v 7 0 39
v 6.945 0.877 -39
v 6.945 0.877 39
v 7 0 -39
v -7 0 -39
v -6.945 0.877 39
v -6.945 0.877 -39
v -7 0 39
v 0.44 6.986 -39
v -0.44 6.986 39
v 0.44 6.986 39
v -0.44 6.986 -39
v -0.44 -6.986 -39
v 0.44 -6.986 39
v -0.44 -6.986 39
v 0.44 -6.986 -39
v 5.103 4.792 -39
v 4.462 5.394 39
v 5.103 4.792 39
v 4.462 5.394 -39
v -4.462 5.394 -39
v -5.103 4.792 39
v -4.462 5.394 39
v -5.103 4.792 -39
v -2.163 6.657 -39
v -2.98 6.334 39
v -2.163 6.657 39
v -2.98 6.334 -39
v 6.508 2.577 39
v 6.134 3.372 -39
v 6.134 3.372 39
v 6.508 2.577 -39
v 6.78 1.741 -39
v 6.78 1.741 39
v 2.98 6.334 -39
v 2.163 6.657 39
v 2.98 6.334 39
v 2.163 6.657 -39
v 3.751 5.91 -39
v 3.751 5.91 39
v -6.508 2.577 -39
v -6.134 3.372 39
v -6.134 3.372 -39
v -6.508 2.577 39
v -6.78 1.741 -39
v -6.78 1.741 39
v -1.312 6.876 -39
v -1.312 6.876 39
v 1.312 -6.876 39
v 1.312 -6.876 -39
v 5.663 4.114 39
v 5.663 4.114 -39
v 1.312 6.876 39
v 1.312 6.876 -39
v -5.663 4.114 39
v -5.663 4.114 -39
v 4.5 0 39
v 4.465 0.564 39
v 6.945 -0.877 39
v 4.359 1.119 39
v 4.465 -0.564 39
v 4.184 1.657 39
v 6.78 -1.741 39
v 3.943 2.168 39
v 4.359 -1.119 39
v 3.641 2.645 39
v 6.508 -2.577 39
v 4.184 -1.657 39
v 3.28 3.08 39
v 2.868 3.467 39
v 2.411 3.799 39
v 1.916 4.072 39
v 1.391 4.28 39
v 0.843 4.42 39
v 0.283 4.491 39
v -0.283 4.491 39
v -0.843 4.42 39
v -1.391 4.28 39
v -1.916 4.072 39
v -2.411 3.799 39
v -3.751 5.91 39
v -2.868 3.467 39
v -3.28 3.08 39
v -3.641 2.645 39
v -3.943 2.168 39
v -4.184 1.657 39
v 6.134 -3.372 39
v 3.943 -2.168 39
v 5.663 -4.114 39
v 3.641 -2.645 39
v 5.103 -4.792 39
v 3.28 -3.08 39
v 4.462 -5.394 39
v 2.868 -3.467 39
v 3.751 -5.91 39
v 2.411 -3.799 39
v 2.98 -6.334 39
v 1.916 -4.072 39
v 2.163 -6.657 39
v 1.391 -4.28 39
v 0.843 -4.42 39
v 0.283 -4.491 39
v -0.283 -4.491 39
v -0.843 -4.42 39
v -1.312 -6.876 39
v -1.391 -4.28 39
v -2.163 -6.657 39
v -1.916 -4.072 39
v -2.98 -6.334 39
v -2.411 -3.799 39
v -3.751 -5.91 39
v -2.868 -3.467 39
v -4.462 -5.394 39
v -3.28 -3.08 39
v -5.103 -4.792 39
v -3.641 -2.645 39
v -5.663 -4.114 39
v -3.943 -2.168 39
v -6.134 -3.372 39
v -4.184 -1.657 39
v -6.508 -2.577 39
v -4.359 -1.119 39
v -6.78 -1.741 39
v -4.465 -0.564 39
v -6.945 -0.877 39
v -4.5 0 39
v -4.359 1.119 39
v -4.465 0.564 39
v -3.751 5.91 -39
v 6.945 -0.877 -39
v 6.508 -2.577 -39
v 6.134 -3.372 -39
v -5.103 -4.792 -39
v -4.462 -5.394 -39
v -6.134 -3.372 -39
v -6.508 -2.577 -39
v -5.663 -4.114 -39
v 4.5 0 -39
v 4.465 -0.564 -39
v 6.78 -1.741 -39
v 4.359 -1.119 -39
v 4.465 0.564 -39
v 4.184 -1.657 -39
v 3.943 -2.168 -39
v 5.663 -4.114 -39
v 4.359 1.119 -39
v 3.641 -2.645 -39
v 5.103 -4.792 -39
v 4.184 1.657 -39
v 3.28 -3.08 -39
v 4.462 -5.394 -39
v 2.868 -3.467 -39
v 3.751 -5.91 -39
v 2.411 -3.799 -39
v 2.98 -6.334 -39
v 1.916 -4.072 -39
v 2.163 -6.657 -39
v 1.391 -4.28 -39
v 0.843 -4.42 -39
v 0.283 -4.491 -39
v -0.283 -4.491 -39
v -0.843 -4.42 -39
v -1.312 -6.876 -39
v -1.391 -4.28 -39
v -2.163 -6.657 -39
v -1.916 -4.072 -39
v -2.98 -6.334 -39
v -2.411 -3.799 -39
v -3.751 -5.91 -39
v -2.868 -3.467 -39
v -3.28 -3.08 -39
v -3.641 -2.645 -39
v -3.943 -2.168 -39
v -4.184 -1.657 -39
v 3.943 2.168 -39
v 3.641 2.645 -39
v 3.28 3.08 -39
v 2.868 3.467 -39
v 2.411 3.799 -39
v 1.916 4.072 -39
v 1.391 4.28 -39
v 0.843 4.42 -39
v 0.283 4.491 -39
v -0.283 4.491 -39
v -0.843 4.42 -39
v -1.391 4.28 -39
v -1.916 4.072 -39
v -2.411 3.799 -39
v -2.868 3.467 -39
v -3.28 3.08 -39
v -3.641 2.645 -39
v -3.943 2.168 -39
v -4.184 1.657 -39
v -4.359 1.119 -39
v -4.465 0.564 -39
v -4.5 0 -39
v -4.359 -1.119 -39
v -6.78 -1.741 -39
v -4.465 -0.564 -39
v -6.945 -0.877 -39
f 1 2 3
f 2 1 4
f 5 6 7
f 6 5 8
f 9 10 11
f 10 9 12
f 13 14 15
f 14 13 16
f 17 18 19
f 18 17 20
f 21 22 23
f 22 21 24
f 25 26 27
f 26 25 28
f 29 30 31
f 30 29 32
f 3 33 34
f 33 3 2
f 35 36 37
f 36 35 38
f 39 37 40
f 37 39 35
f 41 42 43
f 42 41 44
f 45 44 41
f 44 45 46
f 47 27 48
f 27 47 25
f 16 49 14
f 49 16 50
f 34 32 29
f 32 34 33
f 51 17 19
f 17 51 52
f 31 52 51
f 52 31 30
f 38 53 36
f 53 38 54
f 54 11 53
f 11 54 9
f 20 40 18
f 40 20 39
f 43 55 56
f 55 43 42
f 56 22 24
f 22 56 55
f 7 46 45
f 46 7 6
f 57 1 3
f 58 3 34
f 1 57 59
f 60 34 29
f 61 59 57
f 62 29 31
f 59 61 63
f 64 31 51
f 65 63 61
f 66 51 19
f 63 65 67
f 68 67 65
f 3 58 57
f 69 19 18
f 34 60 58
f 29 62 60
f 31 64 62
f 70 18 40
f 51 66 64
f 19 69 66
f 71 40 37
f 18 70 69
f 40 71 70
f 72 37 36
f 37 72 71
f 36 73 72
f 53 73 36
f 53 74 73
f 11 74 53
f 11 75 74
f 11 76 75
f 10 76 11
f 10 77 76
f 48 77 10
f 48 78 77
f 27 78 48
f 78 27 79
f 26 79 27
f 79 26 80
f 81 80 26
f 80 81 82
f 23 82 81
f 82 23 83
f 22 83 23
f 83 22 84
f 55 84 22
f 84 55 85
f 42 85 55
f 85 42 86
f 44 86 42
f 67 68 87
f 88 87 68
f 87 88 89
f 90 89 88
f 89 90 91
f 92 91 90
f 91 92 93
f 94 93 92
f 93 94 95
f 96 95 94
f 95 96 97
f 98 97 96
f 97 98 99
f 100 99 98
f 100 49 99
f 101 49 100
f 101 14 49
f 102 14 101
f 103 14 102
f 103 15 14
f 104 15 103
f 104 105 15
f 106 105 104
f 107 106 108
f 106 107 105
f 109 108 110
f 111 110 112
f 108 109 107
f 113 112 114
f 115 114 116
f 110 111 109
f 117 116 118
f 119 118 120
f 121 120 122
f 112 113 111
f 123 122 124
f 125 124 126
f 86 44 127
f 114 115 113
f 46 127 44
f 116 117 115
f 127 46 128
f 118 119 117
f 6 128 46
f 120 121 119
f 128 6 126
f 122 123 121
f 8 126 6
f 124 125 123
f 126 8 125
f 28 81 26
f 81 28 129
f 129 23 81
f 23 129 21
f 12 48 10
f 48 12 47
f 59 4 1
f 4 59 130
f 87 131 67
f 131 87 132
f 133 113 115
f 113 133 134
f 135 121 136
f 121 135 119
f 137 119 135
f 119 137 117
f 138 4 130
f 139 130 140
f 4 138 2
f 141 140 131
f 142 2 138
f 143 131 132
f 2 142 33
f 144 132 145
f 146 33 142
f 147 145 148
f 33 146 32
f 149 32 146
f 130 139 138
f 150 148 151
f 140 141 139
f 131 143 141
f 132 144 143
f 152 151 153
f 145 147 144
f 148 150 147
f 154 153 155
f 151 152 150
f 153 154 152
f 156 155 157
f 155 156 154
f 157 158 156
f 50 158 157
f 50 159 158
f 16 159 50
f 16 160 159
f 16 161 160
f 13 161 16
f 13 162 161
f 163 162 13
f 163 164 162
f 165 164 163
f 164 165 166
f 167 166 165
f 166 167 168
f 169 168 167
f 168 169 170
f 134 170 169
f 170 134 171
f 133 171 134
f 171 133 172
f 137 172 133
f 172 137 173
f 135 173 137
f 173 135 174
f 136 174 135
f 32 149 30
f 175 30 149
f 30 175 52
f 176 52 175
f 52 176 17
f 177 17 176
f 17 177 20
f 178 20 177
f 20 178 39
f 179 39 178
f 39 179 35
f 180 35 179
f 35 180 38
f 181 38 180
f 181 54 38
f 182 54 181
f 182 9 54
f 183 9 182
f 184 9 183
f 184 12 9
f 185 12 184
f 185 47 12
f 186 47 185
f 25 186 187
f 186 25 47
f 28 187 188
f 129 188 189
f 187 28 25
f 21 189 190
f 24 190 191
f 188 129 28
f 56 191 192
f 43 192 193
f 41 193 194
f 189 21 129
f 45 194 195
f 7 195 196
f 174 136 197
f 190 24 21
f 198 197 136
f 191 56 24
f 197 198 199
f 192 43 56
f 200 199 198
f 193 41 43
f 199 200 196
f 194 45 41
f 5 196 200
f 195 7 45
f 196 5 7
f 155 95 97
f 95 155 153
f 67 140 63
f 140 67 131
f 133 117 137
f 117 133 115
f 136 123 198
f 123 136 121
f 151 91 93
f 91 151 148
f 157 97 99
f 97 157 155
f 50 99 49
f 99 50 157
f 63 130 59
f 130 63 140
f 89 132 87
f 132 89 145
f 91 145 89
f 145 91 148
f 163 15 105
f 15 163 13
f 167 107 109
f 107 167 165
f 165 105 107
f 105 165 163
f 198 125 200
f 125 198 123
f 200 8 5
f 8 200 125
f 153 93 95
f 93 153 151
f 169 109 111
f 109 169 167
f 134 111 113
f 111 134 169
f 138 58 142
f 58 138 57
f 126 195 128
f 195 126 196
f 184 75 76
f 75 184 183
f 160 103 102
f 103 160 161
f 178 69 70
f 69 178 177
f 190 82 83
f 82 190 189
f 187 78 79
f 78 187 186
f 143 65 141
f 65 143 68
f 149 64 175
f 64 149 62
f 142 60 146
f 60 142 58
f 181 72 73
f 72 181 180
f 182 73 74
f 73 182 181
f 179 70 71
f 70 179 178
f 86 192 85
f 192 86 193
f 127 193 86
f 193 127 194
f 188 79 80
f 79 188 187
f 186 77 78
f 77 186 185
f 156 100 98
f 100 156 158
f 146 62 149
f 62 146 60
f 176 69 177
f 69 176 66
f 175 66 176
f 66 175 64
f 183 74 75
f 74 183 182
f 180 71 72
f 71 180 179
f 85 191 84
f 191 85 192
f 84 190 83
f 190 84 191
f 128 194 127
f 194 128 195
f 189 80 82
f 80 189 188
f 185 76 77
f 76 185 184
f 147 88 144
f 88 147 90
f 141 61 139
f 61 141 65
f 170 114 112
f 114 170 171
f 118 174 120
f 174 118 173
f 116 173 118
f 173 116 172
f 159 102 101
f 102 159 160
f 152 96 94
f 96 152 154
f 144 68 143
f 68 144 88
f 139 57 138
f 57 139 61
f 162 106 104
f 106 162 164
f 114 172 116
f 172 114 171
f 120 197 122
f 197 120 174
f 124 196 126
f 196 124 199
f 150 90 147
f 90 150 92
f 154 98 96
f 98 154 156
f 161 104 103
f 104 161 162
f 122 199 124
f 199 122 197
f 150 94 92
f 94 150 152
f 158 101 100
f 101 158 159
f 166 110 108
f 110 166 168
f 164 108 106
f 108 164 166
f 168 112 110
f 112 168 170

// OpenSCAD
$fn = 50;


difference() {
	union() {
		translate(v = [0, 0, -39.0000000000]) {
			cylinder(h = 78, r = 7.0000000000);
		}
	}
	union() {
		translate(v = [0, 0, -100.0000000000]) {
			cylinder(h = 200, r = 4.5000000000);
		}
	}
}
